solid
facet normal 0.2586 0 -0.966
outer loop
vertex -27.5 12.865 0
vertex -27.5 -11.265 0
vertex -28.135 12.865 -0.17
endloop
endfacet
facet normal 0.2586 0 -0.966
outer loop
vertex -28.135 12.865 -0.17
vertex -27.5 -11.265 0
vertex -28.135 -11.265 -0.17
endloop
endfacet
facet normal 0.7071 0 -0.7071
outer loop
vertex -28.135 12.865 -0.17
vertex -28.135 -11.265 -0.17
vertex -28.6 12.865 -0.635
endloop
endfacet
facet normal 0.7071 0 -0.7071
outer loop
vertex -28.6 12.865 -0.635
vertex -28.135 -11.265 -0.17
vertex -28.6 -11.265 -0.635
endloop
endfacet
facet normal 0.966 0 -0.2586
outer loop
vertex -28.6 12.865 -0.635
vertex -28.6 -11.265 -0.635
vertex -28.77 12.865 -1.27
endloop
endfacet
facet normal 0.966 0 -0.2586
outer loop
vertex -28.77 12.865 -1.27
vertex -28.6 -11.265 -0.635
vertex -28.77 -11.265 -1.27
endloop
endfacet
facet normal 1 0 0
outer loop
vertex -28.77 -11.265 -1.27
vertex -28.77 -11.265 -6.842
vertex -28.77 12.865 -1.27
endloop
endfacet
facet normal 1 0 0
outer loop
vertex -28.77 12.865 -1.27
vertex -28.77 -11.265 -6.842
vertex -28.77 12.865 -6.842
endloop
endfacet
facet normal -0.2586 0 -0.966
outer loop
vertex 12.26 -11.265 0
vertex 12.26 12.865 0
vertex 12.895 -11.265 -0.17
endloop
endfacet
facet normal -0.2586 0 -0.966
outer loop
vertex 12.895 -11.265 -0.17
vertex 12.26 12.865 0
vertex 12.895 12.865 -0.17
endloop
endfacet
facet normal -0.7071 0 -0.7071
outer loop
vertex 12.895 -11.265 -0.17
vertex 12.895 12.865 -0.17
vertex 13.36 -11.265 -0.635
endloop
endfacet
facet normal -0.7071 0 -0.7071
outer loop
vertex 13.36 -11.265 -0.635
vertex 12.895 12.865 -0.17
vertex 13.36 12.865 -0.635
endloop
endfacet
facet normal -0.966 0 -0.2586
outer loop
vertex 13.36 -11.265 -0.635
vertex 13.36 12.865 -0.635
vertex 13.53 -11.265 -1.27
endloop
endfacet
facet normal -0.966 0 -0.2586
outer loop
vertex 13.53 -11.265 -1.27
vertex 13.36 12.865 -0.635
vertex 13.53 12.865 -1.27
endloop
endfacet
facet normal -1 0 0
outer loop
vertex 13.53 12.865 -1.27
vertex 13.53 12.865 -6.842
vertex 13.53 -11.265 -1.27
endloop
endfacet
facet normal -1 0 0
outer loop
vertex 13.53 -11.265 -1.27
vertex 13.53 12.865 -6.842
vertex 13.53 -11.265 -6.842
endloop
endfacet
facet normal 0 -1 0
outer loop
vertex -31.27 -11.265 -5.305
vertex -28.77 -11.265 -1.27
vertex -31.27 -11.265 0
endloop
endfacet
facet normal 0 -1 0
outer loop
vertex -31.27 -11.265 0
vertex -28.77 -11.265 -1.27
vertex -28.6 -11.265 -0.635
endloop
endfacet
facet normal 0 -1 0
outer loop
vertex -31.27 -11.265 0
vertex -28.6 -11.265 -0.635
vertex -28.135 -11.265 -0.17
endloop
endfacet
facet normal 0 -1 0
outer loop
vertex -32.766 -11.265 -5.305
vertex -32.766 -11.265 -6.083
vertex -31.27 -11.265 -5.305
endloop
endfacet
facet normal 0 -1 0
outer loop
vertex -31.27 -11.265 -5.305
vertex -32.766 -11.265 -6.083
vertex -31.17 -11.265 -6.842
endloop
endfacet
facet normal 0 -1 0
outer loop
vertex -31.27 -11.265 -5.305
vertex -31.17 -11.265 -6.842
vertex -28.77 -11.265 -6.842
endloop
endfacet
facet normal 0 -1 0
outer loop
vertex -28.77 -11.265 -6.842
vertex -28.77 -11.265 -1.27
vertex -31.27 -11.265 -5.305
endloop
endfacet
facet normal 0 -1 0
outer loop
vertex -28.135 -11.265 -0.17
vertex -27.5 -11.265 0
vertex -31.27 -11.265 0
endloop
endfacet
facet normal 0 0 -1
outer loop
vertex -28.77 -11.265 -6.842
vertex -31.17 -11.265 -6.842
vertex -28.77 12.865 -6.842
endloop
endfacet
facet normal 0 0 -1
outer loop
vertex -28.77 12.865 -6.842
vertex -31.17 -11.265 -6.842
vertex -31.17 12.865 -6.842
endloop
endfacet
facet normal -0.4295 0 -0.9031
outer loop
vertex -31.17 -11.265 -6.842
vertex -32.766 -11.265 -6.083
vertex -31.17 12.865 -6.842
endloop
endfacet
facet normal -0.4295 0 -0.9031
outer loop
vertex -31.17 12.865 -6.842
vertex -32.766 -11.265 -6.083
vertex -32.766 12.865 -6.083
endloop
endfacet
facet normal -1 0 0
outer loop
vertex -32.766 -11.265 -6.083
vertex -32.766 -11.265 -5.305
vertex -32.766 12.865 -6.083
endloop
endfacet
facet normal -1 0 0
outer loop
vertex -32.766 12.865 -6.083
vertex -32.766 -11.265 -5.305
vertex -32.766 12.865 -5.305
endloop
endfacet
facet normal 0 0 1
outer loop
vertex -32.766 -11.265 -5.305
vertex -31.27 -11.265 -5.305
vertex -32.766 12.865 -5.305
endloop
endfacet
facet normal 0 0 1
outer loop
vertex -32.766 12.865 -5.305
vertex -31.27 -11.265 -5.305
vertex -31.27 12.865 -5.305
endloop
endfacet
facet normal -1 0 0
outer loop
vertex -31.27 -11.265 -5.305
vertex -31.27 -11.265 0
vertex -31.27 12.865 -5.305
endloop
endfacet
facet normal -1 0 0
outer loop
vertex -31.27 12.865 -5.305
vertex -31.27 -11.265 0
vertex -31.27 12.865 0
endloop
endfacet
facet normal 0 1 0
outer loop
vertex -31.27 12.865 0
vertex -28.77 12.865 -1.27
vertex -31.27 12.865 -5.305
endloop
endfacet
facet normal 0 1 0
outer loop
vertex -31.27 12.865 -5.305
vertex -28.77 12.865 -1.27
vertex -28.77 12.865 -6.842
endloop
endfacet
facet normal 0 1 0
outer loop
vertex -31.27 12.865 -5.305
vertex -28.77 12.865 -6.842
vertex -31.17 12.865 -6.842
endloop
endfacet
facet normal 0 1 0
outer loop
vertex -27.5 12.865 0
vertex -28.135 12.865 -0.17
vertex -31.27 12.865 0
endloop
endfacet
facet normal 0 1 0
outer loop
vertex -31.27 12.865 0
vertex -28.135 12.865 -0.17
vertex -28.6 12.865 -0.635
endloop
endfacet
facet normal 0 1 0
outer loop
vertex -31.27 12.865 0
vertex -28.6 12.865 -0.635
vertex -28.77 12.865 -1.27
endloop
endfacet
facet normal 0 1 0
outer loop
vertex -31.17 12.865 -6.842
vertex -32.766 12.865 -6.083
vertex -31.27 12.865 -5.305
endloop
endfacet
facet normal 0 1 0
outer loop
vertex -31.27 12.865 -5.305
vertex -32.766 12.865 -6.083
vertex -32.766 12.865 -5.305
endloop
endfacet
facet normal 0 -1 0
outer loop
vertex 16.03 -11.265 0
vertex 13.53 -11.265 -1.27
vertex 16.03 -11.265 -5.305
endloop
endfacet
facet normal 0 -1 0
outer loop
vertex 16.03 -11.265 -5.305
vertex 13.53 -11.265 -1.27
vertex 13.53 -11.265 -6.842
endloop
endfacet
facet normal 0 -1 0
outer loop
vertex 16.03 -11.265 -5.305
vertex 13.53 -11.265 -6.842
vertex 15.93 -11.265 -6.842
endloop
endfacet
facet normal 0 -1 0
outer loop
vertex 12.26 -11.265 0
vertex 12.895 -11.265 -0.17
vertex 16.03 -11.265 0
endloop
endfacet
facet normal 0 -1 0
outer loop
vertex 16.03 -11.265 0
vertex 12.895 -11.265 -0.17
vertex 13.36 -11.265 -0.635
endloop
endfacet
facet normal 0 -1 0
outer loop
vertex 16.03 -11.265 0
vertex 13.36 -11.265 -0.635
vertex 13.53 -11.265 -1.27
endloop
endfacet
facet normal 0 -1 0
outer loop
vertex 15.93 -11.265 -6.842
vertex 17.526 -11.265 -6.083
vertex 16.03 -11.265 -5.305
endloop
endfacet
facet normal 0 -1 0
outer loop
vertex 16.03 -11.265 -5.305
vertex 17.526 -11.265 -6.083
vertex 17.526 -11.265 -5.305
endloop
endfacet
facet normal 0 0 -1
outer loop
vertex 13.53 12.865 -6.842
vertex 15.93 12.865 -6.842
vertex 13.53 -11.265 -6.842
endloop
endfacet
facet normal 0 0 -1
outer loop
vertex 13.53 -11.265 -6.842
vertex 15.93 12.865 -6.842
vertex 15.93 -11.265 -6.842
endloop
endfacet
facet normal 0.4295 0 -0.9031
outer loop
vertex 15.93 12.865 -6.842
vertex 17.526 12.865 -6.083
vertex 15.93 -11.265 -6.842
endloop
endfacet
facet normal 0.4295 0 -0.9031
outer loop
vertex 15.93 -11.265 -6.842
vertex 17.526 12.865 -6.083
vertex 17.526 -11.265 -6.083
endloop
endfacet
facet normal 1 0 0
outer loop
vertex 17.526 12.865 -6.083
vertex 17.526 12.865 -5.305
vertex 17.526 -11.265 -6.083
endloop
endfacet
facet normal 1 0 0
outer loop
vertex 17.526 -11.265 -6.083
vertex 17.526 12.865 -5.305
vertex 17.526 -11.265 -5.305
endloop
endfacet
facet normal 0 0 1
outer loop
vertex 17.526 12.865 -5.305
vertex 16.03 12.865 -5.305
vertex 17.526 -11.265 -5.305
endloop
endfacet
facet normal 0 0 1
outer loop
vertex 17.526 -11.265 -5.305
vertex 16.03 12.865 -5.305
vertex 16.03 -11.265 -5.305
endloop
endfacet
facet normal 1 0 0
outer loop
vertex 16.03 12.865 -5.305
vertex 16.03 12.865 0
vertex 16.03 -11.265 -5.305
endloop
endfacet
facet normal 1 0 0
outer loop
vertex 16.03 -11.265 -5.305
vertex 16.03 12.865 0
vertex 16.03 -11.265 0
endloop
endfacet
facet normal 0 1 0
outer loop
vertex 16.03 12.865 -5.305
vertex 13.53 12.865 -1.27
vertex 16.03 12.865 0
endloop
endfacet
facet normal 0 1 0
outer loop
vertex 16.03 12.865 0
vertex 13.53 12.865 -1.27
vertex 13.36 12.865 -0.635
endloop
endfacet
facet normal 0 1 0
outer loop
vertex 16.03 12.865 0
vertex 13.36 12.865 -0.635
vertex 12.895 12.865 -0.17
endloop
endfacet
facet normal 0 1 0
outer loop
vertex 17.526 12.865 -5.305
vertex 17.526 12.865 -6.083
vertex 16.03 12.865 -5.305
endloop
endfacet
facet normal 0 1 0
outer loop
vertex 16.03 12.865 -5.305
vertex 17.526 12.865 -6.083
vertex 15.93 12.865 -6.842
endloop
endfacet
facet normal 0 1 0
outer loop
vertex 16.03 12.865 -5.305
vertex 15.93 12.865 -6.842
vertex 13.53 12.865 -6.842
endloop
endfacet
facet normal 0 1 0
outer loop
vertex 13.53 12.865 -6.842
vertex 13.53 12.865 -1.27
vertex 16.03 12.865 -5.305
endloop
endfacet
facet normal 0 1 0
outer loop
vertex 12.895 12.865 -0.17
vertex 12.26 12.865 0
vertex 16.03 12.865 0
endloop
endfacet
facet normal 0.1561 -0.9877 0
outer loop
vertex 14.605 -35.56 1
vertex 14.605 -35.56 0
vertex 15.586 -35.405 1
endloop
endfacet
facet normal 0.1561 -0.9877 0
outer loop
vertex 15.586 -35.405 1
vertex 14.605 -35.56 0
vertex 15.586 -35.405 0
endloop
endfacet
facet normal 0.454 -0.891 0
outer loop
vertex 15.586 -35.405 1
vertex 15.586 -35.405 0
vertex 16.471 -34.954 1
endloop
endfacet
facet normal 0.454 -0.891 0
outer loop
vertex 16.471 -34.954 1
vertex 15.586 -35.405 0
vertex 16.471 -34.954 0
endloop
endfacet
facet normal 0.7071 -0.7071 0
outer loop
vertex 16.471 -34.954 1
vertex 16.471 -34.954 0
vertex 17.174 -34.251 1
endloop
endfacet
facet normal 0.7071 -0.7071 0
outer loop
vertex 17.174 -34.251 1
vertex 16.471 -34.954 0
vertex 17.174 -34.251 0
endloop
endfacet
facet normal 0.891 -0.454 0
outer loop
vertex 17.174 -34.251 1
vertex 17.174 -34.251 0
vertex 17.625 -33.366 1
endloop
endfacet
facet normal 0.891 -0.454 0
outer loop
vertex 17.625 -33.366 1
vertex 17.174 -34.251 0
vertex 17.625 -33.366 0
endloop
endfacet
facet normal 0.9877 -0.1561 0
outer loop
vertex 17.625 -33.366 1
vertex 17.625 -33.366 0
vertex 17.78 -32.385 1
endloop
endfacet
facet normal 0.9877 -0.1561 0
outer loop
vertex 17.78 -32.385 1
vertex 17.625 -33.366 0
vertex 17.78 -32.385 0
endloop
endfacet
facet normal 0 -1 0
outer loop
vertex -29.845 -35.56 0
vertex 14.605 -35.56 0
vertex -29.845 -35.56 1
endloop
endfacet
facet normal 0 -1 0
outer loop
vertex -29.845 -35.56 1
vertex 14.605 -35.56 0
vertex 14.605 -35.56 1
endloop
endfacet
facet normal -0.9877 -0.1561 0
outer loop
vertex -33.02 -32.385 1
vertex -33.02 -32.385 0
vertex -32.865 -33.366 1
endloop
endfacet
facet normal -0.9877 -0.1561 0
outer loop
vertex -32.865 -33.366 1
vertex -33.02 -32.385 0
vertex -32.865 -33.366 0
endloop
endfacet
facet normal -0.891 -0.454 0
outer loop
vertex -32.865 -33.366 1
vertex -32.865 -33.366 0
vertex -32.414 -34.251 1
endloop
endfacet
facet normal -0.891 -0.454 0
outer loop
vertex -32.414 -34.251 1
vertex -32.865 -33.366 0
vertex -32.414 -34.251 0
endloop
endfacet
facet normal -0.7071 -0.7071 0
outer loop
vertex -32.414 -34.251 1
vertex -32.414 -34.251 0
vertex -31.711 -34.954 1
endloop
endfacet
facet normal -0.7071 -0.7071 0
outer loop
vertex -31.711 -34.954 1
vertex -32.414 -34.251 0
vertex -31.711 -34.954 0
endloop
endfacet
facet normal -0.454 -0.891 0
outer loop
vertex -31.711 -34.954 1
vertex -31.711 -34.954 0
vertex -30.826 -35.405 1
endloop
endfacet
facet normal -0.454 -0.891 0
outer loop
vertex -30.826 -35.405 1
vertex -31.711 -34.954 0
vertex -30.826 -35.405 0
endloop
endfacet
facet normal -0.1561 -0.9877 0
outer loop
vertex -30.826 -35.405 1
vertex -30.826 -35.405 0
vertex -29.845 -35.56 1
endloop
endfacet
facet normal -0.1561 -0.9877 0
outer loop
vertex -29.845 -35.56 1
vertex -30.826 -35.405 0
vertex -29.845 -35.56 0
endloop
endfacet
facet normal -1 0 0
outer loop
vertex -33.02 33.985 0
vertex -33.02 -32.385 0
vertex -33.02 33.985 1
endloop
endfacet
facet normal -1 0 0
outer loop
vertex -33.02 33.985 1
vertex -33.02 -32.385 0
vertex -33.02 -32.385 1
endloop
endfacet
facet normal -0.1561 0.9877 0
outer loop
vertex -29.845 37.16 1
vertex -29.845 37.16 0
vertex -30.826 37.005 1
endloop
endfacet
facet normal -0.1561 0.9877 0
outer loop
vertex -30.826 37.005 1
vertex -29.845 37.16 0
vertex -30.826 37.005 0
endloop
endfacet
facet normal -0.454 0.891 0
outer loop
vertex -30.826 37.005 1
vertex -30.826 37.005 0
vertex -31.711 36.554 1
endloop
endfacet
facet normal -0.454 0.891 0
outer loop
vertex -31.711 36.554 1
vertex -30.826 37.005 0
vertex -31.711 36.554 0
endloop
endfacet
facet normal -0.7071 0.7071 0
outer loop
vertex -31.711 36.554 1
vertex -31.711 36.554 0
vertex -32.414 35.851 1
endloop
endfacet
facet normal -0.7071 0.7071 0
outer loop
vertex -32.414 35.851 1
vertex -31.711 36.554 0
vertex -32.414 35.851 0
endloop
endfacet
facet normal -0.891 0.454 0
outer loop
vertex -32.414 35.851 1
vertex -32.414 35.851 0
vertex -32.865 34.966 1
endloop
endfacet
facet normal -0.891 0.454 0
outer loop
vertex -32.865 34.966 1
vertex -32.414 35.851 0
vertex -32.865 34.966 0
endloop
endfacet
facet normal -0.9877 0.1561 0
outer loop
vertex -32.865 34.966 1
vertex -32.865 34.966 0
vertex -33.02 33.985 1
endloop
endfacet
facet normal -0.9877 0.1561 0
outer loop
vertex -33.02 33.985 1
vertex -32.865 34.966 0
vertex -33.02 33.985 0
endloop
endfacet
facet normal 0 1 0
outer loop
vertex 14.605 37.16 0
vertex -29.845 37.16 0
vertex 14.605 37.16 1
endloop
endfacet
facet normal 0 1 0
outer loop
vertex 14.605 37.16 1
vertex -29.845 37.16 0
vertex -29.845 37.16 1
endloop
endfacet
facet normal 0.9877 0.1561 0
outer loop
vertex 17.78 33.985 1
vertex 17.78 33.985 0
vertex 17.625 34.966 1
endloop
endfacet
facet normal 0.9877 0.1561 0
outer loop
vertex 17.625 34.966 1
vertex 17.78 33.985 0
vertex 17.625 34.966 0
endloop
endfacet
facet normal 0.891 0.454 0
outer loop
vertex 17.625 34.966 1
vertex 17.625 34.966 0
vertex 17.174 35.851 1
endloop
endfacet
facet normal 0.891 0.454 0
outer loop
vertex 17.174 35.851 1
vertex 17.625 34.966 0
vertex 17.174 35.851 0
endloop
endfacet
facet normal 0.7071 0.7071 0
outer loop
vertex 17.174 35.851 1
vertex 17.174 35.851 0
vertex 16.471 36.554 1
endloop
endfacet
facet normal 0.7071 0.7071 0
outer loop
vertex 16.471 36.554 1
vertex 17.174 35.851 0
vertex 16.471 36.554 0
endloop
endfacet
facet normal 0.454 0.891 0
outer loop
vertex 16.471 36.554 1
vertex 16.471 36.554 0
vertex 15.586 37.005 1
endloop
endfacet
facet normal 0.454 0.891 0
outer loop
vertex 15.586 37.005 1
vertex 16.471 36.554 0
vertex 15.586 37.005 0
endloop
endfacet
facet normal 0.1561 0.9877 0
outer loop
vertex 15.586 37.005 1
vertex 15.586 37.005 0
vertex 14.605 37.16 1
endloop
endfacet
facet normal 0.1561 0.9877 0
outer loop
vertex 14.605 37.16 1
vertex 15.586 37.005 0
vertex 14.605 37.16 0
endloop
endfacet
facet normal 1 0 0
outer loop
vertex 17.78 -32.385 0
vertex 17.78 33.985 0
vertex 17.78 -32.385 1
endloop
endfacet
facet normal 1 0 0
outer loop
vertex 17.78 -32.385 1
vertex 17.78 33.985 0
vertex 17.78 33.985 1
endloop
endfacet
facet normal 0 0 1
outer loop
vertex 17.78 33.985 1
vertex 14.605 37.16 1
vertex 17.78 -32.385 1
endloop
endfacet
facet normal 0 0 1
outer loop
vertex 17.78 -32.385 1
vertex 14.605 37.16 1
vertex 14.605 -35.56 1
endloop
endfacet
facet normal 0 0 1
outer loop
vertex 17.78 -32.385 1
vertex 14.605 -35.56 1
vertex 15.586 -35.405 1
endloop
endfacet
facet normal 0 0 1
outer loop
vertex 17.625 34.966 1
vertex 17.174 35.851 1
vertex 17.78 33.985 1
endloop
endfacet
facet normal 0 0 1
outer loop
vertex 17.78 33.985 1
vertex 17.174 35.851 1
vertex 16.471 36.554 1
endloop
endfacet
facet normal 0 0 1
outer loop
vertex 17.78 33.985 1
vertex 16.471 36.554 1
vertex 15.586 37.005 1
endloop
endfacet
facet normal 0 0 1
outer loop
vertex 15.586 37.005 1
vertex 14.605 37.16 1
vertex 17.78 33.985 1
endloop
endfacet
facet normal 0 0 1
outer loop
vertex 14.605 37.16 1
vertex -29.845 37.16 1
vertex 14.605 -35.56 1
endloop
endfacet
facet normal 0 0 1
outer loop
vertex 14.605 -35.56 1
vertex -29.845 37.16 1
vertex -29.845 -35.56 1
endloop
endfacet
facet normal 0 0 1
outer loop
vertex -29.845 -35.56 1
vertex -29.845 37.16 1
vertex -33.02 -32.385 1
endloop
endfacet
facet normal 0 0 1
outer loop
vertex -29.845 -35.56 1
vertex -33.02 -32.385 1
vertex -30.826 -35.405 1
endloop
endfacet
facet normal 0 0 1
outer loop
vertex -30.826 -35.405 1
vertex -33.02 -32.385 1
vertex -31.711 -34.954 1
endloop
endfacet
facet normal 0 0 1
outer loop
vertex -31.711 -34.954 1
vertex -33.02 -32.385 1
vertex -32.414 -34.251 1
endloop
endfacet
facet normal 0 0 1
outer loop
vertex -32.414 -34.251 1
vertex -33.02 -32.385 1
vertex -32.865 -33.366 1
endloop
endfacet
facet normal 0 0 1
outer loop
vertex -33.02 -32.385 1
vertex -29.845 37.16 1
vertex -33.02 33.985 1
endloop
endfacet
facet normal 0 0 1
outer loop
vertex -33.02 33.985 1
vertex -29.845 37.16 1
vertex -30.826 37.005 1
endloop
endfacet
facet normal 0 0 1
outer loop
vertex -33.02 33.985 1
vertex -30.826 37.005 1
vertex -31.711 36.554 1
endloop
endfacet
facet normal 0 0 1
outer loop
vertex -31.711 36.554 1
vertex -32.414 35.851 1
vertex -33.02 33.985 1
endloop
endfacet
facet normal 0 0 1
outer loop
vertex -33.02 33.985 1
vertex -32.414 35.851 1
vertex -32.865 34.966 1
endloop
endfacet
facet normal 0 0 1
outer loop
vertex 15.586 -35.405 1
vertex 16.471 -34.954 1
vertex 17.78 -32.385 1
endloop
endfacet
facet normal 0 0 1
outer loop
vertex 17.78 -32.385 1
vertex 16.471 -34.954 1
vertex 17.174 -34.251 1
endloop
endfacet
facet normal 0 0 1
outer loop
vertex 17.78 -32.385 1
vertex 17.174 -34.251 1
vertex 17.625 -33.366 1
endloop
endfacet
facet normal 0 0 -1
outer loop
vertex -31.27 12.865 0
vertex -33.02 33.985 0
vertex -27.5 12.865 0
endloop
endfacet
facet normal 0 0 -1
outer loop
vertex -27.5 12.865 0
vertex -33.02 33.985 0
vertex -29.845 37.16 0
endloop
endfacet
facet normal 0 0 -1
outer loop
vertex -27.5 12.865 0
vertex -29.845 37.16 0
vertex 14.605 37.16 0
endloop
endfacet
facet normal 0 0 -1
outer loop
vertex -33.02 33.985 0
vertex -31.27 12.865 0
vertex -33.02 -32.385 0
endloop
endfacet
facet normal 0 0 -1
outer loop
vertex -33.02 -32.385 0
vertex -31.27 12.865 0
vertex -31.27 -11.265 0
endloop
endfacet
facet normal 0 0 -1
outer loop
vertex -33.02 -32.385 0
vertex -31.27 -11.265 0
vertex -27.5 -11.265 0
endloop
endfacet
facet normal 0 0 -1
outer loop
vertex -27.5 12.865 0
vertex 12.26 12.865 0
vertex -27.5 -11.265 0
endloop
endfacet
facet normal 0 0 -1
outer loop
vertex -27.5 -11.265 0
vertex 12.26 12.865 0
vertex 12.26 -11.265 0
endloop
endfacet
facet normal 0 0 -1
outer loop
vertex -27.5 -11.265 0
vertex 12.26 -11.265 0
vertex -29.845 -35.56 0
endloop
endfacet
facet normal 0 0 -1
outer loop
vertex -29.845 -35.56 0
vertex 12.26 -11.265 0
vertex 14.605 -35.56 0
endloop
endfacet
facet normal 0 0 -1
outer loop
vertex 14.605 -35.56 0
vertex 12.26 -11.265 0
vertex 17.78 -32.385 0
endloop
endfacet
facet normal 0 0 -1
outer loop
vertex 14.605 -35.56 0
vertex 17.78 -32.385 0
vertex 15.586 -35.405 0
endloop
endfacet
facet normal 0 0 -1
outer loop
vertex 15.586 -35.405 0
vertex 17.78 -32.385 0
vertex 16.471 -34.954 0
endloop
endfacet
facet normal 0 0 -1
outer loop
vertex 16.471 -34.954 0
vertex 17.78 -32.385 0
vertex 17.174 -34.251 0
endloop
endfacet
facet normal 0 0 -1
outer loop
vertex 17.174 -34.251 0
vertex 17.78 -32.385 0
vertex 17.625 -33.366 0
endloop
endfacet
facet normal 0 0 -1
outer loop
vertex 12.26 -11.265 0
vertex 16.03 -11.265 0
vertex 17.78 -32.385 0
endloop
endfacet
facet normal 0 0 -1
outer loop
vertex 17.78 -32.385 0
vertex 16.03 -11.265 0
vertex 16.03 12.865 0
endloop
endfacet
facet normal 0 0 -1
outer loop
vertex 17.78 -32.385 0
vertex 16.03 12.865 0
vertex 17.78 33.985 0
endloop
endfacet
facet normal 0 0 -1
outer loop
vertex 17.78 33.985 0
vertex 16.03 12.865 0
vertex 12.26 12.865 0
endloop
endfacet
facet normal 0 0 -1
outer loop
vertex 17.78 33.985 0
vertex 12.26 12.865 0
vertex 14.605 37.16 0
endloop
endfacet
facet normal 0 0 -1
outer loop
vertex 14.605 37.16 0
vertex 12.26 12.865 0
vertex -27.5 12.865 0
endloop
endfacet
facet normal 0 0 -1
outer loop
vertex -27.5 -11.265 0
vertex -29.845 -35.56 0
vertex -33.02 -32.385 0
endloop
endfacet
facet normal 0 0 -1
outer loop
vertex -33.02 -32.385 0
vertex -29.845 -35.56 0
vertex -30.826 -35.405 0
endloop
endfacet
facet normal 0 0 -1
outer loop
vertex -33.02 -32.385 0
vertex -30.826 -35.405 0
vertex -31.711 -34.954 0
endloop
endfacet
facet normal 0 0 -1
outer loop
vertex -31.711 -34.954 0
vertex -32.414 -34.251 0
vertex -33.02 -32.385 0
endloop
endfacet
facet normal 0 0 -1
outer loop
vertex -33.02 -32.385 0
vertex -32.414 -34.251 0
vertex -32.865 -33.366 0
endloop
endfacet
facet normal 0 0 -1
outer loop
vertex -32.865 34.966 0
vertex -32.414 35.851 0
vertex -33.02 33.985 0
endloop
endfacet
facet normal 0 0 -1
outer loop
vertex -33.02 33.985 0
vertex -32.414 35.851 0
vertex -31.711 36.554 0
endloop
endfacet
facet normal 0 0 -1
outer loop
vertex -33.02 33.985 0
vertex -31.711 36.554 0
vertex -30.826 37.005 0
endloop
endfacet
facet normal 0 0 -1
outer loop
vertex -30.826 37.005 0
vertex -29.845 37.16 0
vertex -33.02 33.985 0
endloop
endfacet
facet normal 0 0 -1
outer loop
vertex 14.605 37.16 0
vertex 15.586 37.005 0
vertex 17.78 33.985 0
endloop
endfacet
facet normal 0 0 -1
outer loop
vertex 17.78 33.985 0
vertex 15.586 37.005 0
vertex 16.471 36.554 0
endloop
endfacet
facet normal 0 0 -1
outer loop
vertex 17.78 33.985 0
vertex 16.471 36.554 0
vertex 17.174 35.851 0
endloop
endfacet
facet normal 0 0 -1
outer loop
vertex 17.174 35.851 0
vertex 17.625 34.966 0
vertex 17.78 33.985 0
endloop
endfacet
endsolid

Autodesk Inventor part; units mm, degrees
ref_plane "YZ Plane" through (0, 0, 0) normal (1, 0, 0) x (0, 1, 0)
ref_plane "XZ Plane" through (0, 0, 0) normal (0, 1, 0) x (-1, 0, 0)
ref_plane "XY Plane" through (0, 0, 0) normal (0, 0, 1) x (1, 0, 0)
ref_plane "Work Plane1" through (0, 0, 0) normal (0, 0, 1) x (1, 0, 0)
sketch "Sketch1" plane through (0, 0, 0) normal (0, 0, 1) x (1, 0, 0)
  arc A0 (14.605, -35.56) -> (17.78, -32.385) centre (14.605, -32.385) ccw projected
  line L0 (17.78, -32.385) -> (17.78, 33.985) projected
  arc A1 (17.78, 33.985) -> (14.605, 37.16) centre (14.605, 33.985) ccw projected
  line L1 (14.605, 37.16) -> (-29.845, 37.16) projected
  arc A2 (-29.845, 37.16) -> (-33.02, 33.985) centre (-29.845, 33.985) ccw projected
  line L2 (-33.02, 33.985) -> (-33.02, -32.385) projected
  arc A3 (-33.02, -32.385) -> (-29.845, -35.56) centre (-29.845, -32.385) ccw projected
  line L3 (-29.845, -35.56) -> (14.605, -35.56) projected
  line L4 (13.105, -34.06) -> (-28.345, -34.06) projected
  arc A4 (-31.52, -30.885) -> (-28.345, -34.06) centre (-28.345, -30.885) ccw projected
  line L5 (-31.52, -30.885) -> (-31.52, 30.885) projected
  arc A5 (-28.345, 34.06) -> (-31.52, 30.885) centre (-28.345, 30.885) ccw projected
  line L6 (-28.345, 34.06) -> (13.105, 34.06) projected
  arc A6 (16.28, 30.885) -> (13.105, 34.06) centre (13.105, 30.885) ccw projected
  line L7 (16.28, 30.885) -> (16.28, -30.885) projected
  arc A7 (13.105, -34.06) -> (16.28, -30.885) centre (13.105, -30.885) ccw projected
  point P0 (0, 0)
extrude "Extrusion1" add sketch "Sketch1" along normal blind 1 contours L3 A3 L2 A2 L1 A1 L0 A0 | L4 A4 L5 A5 L6 A6 L7 A7
ref_plane "Work Plane2" through (-29.845, 0.8, 0) normal (0, 1, 0) x (1, 0, 0)
sketch "Sketch3" plane through (-29.845, 0.8, 0) normal (0, 1, 0) x (1, 0, 0)
  line L0 (46.125, 31.5) -> (46.125, 0) projected
  line L1 (47.625, 5) -> (47.625, 7) projected
  line L2 (46.125, 5) -> (47.625, 5) projected
  line L3 (46.125, 7) -> (46.125, 5) projected
  line L4 (46.125, 7) -> (47.625, 7) projected
  line L5 (43.375, 0) -> (43.375, 6.8424)
  line L6 (43.375, 6.8424) -> (45.775, 6.8424)
  line L7 (45.775, 6.8424) -> (47.371, 6.0831)
  line L8 (47.371, 6.0831) -> (47.371, 5.3048)
  line L9 (47.371, 5.3048) -> (45.875, 5.3048)
  line L10 (45.875, 5.3048) -> (45.875, 0)
  line L11 (44.45, 0) -> (0, 0) projected
  line L12 (43.375, 0) -> (45.875, 0)
  point P0 (29.845, 0)
  dimension "d17" = 2.5
  dimension "d18" = 0.25
  dimension "d19" = 0.254
  dimension "d20" = 0.3048
  dimension "d21" = 0.1576
  dimension "d23" = 1.496
  dimension "d25" = 115.445
  dimension "d26" = 0.7783
extrude "Extrusion3" add sketch "Sketch3" along normal mid plane 24.13 contours L7 L8 L9 L0 | L0 L9 L10 L12 L11 L5 L6 L7
ref_plane "Work Plane3" through (-7.62, -32.385, 0) normal (-1, 0, 0) x (0, 0, 1)
mirror "Mirror1" about plane through (-7.62, -32.385, 0) normal (-1, 0, 0) of "Extrusion3"
fillet "Fillet1" radius 1.27 1 edges at (13.53, 0.8, 0)
fillet "Fillet2" radius 1.27 1 edges at (-28.77, 0.8, 0)
properties part number "lidV2"
